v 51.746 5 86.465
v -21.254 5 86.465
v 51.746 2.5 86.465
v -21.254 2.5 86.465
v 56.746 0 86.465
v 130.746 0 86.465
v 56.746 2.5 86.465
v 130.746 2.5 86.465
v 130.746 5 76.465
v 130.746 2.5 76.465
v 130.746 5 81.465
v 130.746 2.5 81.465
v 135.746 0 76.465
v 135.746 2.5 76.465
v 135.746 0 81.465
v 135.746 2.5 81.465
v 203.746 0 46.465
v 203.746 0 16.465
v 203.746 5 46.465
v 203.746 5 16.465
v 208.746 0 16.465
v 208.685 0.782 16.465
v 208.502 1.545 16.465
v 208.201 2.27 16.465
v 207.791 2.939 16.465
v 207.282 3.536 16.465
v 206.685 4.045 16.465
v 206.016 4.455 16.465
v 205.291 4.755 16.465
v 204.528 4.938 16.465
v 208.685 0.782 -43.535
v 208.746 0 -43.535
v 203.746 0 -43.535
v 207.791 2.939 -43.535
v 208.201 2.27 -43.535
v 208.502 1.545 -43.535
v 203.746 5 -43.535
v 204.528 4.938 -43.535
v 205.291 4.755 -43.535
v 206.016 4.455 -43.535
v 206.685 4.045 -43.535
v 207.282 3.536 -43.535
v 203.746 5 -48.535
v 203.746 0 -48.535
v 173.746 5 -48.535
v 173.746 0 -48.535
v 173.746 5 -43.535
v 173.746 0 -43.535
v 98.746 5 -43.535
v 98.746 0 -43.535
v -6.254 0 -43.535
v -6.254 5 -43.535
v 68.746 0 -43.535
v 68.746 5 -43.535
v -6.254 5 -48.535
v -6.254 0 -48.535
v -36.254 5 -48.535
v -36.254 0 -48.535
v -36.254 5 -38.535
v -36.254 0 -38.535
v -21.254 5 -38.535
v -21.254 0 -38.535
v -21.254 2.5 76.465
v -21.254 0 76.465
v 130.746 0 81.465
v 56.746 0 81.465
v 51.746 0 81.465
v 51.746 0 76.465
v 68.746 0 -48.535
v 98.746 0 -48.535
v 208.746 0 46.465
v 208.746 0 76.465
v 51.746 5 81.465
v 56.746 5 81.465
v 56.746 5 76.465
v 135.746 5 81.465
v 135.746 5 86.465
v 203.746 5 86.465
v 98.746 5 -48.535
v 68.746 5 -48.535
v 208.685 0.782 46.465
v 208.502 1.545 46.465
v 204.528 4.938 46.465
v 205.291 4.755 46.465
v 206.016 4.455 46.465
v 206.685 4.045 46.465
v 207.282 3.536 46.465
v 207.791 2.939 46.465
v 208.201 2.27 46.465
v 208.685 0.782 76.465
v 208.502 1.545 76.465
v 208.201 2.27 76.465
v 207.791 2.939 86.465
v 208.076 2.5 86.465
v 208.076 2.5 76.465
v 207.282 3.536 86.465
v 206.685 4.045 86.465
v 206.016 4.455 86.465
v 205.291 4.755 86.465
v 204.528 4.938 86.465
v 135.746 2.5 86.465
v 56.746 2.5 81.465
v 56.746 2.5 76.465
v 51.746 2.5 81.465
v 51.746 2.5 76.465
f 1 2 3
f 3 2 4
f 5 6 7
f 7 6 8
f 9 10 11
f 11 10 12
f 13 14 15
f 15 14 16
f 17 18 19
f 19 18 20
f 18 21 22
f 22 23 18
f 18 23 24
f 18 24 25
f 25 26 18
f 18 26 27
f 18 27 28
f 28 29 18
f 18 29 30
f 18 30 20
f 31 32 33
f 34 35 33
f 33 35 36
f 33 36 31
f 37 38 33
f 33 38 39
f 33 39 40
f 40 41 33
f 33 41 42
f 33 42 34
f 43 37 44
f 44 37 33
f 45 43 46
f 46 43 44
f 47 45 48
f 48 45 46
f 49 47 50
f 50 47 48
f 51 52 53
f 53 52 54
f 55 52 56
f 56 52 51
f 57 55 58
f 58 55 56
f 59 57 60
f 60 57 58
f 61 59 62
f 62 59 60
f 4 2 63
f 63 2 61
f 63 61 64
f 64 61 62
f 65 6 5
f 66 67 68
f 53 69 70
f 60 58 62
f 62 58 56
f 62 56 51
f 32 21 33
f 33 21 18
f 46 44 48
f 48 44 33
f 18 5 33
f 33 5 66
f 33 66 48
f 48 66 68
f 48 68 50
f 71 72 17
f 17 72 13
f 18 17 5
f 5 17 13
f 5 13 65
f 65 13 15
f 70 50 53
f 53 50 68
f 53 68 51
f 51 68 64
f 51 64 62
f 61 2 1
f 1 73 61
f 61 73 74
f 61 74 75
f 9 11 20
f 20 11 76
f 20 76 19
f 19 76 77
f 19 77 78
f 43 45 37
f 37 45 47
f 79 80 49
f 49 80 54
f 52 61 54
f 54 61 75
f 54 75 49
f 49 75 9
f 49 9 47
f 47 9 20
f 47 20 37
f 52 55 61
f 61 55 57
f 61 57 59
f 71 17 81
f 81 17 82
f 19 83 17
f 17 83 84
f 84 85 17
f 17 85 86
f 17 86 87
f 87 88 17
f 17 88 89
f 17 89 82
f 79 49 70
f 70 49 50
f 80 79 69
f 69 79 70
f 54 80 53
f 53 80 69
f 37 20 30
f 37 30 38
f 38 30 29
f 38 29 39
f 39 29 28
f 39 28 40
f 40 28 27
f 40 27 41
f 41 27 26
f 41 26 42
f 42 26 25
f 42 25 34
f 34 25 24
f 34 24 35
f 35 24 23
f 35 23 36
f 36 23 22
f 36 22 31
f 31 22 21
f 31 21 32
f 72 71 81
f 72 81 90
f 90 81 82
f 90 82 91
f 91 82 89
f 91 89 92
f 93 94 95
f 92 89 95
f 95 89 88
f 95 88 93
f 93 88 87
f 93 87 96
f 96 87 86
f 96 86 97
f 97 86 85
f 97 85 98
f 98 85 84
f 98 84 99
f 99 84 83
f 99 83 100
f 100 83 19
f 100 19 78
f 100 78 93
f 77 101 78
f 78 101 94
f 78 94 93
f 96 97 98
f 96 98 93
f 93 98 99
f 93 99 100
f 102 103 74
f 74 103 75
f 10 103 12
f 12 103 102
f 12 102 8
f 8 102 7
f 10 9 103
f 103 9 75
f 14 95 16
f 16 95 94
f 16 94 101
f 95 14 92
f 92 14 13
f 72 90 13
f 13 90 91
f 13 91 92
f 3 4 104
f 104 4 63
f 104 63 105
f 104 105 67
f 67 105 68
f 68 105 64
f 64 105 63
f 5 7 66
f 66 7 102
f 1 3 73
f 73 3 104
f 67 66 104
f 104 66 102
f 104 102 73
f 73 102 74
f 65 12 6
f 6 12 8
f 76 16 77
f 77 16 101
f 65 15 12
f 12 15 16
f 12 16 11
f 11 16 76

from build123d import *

# Parameters (mm, degrees)
SKETCH_1_W          = 5
SKETCH_1_H          = 60
SKETCH_1_W_2        = 30
SKETCH_1_H_2        = 5
SKETCH_1_W_3        = 15
EXTRUDE_1_DEPTH     = 5
FILLET_1_R          = 5
SKETCH_2_W          = 239.490005879
SKETCH_2_H          = 213.108485662
CUT_EXTRUDE_2_DEPTH = 10
SKETCH_3_W          = 73
SKETCH_3_H          = 2.5
SKETCH_3_W_2        = 74
CUT_EXTRUDE_3_DEPTH = 10
SKETCH_4_W          = 5
SKETCH_4_H          = 5
CUT_EXTRUDE_4_DEPTH = 5


with BuildPart() as part:
    # 草圖1 → 填料-伸長1 (new body)
    with BuildSketch(Plane(origin=(0, 0, 0), x_dir=(1, 0, 0), z_dir=(0, 1, 0))):
        Polygon((198.746286718, -286.464902661), (198.746286718, -256.464902661), (183.246286718, -256.464902661), (183.246286718, -266.464902661), (124.746286718, -266.464902661), (124.746286718, -262.464902661), (109.246286718, -262.464902661), (109.246286718, -266.464902661), (-21.253713282, -266.464902661), (-21.253713282, 38.535097339), (-36.253713282, 38.535097339), (-36.253713282, 43.535097339), (203.746286718, 43.535097339), (203.746286718, -286.464902661), align=None)
        with Locations((206.246286718, -256.464902661)):
            Rectangle(SKETCH_1_W, SKETCH_1_H)
        with Locations((206.246286718, 13.535097339)):
            Rectangle(SKETCH_1_W, SKETCH_1_H)
        with Locations((188.746286718, 46.035097339)):
            Rectangle(SKETCH_1_W_2, SKETCH_1_H_2)
        with Locations((-21.253713282, 46.035097339)):
            Rectangle(SKETCH_1_W_2, SKETCH_1_H_2)
        with Locations((91.246286718, 46.035097339)):
            Rectangle(SKETCH_1_W_3, SKETCH_1_H_2)
        with Locations((76.246286718, 46.035097339)):
            Rectangle(SKETCH_1_W_3, SKETCH_1_H_2)
        with Locations((206.246286718, -166.464902661)):
            Rectangle(SKETCH_1_W, SKETCH_1_H)
        with Locations((206.246286718, -76.464902661)):
            Rectangle(SKETCH_1_W, SKETCH_1_H)
    extrude(amount=EXTRUDE_1_DEPTH)

    # 圓角1
    fillet_1_edges = [part.edges().sort_by_distance(p)[0] for p in [
        (208.746286718, 5, -13.535097339),
        (208.746286718, 5, 76.464902661),
        (208.746286718, 5, 166.464902661),
        (208.746286718, 5, 256.464902661),
    ]]
    fillet(fillet_1_edges, radius=FILLET_1_R - 0.0001)  # a hair under: the kernel refuses the full size

    # 草圖2 → 除料-伸長2 (cut)
    with BuildSketch(Plane(origin=(0, 5, 0), x_dir=(1, 0, 0), z_dir=(0, 1, 0))):
        with Locations((89.001283779, -193.019145492)):
            Rectangle(SKETCH_2_W, SKETCH_2_H)
    extrude(amount=-CUT_EXTRUDE_2_DEPTH, mode=Mode.SUBTRACT)

    # 草圖3 → 除料-伸長3 (cut)
    with BuildSketch(Plane.XY.offset(86.464902661)):
        with Locations((15.246286718, 1.25)):
            Rectangle(SKETCH_3_W, SKETCH_3_H)
        with Locations((172.246286718, 1.25)):
            Rectangle(SKETCH_3_W, SKETCH_3_H)
        with Locations((93.746286718, 3.75)):
            Rectangle(SKETCH_3_W_2, SKETCH_3_H)
    extrude(amount=-CUT_EXTRUDE_3_DEPTH, mode=Mode.SUBTRACT)

    # 草圖4 → 除料-伸長4 (cut)
    with BuildSketch(Plane.XY.offset(86.464902661)):
        with Locations((54.246286718, 2.5)):
            Rectangle(SKETCH_4_W, SKETCH_4_H)
        with Locations((133.246286718, 2.5)):
            Rectangle(SKETCH_4_W, SKETCH_4_H)
    extrude(amount=-CUT_EXTRUDE_4_DEPTH, mode=Mode.SUBTRACT)


solid = part.part
